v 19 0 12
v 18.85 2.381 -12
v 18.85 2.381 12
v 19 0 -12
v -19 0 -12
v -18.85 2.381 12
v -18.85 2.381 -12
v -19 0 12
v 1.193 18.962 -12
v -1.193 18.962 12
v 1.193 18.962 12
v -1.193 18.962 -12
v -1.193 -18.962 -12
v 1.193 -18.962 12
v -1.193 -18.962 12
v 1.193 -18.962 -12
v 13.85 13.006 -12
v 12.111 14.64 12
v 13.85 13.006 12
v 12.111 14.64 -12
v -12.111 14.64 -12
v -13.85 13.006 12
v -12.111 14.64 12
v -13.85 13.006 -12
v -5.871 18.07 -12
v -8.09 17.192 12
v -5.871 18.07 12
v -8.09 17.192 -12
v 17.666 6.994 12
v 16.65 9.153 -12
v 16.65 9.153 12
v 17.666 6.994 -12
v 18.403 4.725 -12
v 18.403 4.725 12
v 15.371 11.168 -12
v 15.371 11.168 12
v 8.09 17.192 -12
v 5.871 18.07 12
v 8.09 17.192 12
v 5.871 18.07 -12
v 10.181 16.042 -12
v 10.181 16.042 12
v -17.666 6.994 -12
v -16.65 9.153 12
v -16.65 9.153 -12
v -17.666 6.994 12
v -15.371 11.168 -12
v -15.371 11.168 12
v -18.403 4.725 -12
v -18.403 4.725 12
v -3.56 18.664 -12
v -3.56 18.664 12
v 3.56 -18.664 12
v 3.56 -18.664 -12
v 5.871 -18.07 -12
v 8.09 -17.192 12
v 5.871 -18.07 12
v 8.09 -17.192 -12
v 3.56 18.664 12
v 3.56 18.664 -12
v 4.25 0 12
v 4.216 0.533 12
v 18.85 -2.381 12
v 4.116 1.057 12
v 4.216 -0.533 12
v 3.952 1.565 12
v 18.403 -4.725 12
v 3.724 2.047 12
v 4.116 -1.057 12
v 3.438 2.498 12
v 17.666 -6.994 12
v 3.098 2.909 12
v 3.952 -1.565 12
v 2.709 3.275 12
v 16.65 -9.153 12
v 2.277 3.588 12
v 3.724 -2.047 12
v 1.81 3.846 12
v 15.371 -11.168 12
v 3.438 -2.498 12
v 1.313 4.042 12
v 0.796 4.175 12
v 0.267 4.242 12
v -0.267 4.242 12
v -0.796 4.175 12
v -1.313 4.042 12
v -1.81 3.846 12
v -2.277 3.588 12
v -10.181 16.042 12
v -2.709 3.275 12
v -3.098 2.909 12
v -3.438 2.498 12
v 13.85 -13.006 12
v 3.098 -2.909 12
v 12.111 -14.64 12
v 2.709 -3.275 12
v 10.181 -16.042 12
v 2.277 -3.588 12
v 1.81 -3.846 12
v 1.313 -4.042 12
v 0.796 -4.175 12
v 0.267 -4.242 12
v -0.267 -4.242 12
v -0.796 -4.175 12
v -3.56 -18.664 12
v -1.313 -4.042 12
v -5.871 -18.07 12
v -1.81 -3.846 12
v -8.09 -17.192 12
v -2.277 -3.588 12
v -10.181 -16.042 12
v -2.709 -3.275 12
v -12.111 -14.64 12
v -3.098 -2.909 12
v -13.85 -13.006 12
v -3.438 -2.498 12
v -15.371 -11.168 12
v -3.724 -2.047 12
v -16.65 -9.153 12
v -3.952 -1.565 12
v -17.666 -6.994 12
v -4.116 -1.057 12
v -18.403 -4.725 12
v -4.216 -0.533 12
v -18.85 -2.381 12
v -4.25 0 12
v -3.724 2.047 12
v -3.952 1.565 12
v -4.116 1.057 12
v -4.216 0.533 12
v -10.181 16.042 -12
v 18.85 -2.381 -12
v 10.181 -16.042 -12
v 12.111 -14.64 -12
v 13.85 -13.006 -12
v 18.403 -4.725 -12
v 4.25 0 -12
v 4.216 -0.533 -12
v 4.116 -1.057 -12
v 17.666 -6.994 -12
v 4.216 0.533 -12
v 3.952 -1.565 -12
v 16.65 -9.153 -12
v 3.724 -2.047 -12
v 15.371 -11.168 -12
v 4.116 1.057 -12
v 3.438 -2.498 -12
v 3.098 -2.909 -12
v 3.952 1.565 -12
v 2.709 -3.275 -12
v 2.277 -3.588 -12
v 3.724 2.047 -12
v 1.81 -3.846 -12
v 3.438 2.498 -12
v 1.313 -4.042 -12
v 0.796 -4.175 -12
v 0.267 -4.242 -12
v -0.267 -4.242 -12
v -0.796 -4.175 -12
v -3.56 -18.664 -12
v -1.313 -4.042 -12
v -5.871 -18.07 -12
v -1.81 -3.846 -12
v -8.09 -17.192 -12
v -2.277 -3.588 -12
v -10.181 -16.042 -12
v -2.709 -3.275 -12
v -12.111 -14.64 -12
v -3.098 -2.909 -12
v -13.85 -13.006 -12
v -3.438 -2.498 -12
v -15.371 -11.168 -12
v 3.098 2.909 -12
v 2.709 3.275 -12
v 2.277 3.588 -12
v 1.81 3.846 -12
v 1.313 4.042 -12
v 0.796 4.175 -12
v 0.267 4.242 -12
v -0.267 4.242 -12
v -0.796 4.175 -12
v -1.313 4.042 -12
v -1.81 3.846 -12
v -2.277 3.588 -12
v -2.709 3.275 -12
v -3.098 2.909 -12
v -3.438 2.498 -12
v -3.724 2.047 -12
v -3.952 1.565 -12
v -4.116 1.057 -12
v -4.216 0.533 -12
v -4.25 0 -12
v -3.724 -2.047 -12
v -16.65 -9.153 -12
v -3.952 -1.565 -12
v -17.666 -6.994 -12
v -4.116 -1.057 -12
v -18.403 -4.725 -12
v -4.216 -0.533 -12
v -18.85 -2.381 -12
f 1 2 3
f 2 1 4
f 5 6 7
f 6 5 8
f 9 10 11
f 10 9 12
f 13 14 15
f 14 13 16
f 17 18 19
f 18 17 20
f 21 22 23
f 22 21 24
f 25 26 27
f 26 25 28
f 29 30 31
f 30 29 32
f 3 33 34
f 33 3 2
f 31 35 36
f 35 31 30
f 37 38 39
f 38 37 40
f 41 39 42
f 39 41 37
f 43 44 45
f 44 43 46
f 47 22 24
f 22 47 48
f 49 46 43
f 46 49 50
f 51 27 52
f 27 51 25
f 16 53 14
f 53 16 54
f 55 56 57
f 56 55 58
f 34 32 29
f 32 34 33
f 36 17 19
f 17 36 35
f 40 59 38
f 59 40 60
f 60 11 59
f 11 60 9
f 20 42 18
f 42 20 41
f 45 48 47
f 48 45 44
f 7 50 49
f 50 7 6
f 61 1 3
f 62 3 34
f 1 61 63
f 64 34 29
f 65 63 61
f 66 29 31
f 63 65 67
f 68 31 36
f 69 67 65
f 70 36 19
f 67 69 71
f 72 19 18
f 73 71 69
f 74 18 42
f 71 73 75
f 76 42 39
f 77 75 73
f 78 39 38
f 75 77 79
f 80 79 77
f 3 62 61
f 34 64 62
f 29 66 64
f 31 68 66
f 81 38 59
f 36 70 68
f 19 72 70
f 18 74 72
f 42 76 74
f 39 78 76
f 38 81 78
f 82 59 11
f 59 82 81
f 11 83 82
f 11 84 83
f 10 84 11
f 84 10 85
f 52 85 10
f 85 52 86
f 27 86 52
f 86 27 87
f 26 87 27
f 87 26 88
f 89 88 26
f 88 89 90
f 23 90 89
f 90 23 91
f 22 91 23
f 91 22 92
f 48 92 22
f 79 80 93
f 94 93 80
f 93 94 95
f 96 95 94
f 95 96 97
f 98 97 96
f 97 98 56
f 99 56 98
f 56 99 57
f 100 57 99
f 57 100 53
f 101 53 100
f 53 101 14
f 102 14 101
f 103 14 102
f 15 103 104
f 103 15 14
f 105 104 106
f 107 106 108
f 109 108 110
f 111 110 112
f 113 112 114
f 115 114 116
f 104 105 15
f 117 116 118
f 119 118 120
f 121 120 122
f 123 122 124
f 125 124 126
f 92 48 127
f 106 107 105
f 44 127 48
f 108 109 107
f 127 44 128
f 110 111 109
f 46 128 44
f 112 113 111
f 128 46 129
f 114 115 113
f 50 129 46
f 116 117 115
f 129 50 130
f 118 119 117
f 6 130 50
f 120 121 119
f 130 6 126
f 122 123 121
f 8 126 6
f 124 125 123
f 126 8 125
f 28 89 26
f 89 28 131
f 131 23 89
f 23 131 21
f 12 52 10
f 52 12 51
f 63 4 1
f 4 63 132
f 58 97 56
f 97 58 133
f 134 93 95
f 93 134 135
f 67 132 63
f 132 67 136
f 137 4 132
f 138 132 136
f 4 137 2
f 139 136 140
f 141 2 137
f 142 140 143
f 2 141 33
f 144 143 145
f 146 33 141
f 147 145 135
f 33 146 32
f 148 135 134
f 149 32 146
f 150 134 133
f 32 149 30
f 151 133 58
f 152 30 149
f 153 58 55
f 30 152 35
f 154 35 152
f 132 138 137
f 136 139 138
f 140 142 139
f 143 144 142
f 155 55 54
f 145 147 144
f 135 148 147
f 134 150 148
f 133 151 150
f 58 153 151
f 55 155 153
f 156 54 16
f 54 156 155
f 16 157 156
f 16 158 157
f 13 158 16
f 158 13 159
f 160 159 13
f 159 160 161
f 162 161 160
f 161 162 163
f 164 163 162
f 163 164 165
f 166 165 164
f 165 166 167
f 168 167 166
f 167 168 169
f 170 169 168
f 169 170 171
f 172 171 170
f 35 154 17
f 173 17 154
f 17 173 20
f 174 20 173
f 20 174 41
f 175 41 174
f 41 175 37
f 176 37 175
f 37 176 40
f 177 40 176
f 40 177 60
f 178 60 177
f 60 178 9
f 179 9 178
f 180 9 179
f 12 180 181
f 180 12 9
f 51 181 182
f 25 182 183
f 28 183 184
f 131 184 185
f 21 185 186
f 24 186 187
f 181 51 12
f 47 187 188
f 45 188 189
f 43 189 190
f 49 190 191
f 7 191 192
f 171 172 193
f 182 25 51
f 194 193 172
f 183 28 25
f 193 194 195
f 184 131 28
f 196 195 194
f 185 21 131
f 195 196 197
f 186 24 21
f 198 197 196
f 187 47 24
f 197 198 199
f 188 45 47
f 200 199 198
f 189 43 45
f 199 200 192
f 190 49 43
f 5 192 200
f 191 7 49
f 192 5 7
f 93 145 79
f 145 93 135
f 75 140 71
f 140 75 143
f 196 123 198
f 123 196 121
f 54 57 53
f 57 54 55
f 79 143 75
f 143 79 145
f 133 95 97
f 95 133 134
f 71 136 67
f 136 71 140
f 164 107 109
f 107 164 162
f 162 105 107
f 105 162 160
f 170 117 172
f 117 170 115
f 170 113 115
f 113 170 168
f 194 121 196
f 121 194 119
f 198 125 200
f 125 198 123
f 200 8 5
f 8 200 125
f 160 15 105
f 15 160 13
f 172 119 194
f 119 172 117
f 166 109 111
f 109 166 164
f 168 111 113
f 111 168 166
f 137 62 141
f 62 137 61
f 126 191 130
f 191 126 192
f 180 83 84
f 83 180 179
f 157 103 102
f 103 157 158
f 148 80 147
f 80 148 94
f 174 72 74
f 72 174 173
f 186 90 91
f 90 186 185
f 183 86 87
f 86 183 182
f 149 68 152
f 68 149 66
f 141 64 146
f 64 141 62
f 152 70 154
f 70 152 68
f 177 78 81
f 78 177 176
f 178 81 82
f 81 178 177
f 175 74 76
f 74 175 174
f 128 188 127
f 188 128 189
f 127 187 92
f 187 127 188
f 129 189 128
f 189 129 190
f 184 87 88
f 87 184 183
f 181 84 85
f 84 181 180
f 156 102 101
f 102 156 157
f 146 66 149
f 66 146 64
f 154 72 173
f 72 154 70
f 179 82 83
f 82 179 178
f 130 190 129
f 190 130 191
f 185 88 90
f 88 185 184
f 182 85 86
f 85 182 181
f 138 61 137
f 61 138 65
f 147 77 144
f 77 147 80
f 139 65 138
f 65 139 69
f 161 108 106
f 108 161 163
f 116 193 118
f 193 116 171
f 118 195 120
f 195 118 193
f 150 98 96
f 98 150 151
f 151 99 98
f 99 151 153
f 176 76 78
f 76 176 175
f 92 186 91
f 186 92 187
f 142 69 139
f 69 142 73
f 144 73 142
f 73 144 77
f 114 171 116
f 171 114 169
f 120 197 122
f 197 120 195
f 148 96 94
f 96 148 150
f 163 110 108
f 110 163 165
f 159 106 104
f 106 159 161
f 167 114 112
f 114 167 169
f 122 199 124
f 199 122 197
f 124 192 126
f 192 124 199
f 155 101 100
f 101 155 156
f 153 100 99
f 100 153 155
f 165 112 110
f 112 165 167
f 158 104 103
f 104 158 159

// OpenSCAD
$fn = 50;


difference() {
	union() {
		translate(v = [0, 0, -12.0000000000]) {
			cylinder(h = 24, r = 19.0000000000);
		}
	}
	union() {
		translate(v = [0, 0, -100.0000000000]) {
			cylinder(h = 200, r = 4.2500000000);
		}
	}
}
